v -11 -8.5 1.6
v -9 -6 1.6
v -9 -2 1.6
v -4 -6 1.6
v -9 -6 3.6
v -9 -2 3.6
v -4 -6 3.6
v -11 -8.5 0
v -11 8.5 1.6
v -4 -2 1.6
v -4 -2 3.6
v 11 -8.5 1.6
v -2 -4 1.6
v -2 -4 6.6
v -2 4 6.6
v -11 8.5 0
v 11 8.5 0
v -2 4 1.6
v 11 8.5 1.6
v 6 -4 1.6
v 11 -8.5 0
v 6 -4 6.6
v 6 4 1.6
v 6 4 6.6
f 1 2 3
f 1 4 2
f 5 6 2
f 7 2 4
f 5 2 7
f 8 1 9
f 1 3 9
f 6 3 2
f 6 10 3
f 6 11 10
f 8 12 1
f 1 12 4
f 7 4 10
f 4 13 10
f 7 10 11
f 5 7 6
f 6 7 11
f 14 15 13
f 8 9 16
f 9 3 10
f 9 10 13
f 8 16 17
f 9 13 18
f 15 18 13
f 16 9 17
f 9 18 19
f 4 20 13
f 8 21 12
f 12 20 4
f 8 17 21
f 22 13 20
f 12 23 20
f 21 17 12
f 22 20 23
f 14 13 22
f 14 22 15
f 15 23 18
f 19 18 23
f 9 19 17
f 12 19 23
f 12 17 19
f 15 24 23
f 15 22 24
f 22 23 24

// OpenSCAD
// file: ../lib/lib.scad
// Shared helpers. Include AFTER params.scad (needs TOL, M3_* etc.).
$fa = 4; $fs = 0.5;

module rrect(size, r) {            // 2D rounded rectangle, centred
    r2 = min(r, min(size[0], size[1]) / 2 - 0.001);
    offset(r = r2) square([size[0] - 2 * r2, size[1] - 2 * r2], center = true);
}
module rbox(size, r, center_xy = true) {   // box with rounded vertical edges
    translate(center_xy ? [0, 0, 0] : [size[0] / 2, size[1] / 2, 0])
        linear_extrude(size[2]) rrect([size[0], size[1]], r);
}
module rbox_at(x0, x1, y0, y1, z0, z1, r = 0.01) {
    translate([(x0 + x1) / 2, (y0 + y1) / 2, z0]) rbox([x1 - x0, y1 - y0, z1 - z0], r);
}
module box_at(x0, x1, y0, y1, z0, z1) { translate([x0, y0, z0]) cube([x1 - x0, y1 - y0, z1 - z0]); }

module ring(ro, ri, h) { difference() { cylinder(r = ro, h = h); translate([0, 0, -1]) cylinder(r = ri, h = h + 2); } }
module ring_sector(ro, ri, h, a0, a1) {
    intersection() {
        ring(ro, ri, h);
        linear_extrude(h) polygon(concat([[0, 0]], [for (a = [a0 : (a1 - a0) / 24 : a1]) 2 * ro * [cos(a), sin(a)]]));
    }
}
// teardrop hole along an axis lying horizontal (axis = Y after rotation), printable w/o support
module teardrop2d(d) { union() { circle(d = d); rotate(45) square(d / 2); } }
// vertical heat-set insert hole, opening at z=0 going +z (depth l)
module insert_hole(l = M3_INSERT_L) { translate([0, 0, -EPS]) cylinder(d = M3_INSERT_D, h = l + EPS); }
module m3_clear(l) { translate([0, 0, -EPS]) cylinder(d = M3_CLEAR, h = l + 2 * EPS); }
module m3_csk(l) {  // countersunk clearance from z=0 upward, head at z=0 side
    translate([0, 0, -EPS]) { cylinder(d = M3_CLEAR, h = l + 2 * EPS); cylinder(d1 = 6.4, d2 = M3_CLEAR, h = 1.7); }
}
module card2d() { rrect([CARD_L, CARD_W], CARD_R); }
module card_at(cy, z) { translate([0, cy, z]) linear_extrude(CARD_T) card2d(); }

// ---- gears ----
function _inv(a) = tan(a) - a * PI_ / 180;           // involute function, a in deg
function _invpt(rb, r, ang0, s) = let(al = acos(rb / r), th = ang0 - s * (_inv(al) * 180 / PI_)) [r * cos(th), r * sin(th)];
module involute_gear2d(m, z, pa = 20, clearance = 0.05) {
    rp = m * z / 2; rb = rp * cos(pa); ra = rp + m - clearance; rf = rp - 1.25 * m;
    half = 90 / z + _inv(pa) * 180 / PI_;            // tooth half-angle at base (deg)
    n = 8;
    rs = [for (i = [0 : n]) max(rb, rf) + (ra - max(rb, rf)) * i / n];
    union() {
        circle(r = rf, $fn = z * 4);
        for (k = [0 : z - 1]) rotate(k * 360 / z) polygon(concat(
            [[rf * cos(-half), rf * sin(-half)]],
            [for (r = rs) let(p = _invpt(rb, r, half, 1)) [p[0], -p[1]]],
            [for (i = [n : -1 : 0]) _invpt(rb, rs[i], half, 1)],
            [[rf * cos(half), rf * sin(half)]]));
    }
}
// straight gear rack (2D in XY: teeth along +x, pointing -y, pitch line at y=0)
module gear_rack2d(m, len, back = 3) {
    p = PI_ * m; ad = m; de = 1.25 * m; t = tan(20);
    n = ceil(len / p) + 1;
    intersection() {
        union() {
            translate([0, de]) square([len, back]);
            for (i = [0 : n]) translate([i * p - p / 4, 0]) polygon([
                [-(p / 4 + de * t), de + 0.01], [p / 4 + de * t + 0.01, de + 0.01],
                [p / 4 - ad * t, -ad], [-(p / 4 - ad * t), -ad] ]);
        }
        translate([0, -ad - 1]) square([len, ad + de + back + 2]);
    }
}
// GT2 belt-tooth profile ring (teeth outward), 2D
module gt2_ring2d(n, r_land, ri) {
    union() {
        difference() { circle(r = r_land + 0.01, $fn = n * 2); circle(r = ri, $fn = n * 2); }
        for (k = [0 : n - 1]) rotate(k * 360 / n)
            translate([r_land, 0]) hull() { translate([-0.2, 0]) square([0.2, 1.0], center = true); translate([0.25, 0]) circle(r = 0.5, $fn = 12); }
    }
}
// main file
// Vendor model: Mini560 12V->5V 5A synchronous buck module. Local: PCB bottom z=0, centred.
include <../params.scad>
include <../lib/lib.scad>
module vendor_mini560() {
    color([0.1,0.35,0.15]) translate([-11, -8.5, 0]) cube([22, 17, 1.6]);
    color([0.25,0.25,0.27]) translate([-2, -4, 1.6]) cube([8, 8, 5]);
    color([0.3,0.3,0.3]) translate([-9, -6, 1.6]) cube([5, 4, 2]);
}

vendor_mini560();
